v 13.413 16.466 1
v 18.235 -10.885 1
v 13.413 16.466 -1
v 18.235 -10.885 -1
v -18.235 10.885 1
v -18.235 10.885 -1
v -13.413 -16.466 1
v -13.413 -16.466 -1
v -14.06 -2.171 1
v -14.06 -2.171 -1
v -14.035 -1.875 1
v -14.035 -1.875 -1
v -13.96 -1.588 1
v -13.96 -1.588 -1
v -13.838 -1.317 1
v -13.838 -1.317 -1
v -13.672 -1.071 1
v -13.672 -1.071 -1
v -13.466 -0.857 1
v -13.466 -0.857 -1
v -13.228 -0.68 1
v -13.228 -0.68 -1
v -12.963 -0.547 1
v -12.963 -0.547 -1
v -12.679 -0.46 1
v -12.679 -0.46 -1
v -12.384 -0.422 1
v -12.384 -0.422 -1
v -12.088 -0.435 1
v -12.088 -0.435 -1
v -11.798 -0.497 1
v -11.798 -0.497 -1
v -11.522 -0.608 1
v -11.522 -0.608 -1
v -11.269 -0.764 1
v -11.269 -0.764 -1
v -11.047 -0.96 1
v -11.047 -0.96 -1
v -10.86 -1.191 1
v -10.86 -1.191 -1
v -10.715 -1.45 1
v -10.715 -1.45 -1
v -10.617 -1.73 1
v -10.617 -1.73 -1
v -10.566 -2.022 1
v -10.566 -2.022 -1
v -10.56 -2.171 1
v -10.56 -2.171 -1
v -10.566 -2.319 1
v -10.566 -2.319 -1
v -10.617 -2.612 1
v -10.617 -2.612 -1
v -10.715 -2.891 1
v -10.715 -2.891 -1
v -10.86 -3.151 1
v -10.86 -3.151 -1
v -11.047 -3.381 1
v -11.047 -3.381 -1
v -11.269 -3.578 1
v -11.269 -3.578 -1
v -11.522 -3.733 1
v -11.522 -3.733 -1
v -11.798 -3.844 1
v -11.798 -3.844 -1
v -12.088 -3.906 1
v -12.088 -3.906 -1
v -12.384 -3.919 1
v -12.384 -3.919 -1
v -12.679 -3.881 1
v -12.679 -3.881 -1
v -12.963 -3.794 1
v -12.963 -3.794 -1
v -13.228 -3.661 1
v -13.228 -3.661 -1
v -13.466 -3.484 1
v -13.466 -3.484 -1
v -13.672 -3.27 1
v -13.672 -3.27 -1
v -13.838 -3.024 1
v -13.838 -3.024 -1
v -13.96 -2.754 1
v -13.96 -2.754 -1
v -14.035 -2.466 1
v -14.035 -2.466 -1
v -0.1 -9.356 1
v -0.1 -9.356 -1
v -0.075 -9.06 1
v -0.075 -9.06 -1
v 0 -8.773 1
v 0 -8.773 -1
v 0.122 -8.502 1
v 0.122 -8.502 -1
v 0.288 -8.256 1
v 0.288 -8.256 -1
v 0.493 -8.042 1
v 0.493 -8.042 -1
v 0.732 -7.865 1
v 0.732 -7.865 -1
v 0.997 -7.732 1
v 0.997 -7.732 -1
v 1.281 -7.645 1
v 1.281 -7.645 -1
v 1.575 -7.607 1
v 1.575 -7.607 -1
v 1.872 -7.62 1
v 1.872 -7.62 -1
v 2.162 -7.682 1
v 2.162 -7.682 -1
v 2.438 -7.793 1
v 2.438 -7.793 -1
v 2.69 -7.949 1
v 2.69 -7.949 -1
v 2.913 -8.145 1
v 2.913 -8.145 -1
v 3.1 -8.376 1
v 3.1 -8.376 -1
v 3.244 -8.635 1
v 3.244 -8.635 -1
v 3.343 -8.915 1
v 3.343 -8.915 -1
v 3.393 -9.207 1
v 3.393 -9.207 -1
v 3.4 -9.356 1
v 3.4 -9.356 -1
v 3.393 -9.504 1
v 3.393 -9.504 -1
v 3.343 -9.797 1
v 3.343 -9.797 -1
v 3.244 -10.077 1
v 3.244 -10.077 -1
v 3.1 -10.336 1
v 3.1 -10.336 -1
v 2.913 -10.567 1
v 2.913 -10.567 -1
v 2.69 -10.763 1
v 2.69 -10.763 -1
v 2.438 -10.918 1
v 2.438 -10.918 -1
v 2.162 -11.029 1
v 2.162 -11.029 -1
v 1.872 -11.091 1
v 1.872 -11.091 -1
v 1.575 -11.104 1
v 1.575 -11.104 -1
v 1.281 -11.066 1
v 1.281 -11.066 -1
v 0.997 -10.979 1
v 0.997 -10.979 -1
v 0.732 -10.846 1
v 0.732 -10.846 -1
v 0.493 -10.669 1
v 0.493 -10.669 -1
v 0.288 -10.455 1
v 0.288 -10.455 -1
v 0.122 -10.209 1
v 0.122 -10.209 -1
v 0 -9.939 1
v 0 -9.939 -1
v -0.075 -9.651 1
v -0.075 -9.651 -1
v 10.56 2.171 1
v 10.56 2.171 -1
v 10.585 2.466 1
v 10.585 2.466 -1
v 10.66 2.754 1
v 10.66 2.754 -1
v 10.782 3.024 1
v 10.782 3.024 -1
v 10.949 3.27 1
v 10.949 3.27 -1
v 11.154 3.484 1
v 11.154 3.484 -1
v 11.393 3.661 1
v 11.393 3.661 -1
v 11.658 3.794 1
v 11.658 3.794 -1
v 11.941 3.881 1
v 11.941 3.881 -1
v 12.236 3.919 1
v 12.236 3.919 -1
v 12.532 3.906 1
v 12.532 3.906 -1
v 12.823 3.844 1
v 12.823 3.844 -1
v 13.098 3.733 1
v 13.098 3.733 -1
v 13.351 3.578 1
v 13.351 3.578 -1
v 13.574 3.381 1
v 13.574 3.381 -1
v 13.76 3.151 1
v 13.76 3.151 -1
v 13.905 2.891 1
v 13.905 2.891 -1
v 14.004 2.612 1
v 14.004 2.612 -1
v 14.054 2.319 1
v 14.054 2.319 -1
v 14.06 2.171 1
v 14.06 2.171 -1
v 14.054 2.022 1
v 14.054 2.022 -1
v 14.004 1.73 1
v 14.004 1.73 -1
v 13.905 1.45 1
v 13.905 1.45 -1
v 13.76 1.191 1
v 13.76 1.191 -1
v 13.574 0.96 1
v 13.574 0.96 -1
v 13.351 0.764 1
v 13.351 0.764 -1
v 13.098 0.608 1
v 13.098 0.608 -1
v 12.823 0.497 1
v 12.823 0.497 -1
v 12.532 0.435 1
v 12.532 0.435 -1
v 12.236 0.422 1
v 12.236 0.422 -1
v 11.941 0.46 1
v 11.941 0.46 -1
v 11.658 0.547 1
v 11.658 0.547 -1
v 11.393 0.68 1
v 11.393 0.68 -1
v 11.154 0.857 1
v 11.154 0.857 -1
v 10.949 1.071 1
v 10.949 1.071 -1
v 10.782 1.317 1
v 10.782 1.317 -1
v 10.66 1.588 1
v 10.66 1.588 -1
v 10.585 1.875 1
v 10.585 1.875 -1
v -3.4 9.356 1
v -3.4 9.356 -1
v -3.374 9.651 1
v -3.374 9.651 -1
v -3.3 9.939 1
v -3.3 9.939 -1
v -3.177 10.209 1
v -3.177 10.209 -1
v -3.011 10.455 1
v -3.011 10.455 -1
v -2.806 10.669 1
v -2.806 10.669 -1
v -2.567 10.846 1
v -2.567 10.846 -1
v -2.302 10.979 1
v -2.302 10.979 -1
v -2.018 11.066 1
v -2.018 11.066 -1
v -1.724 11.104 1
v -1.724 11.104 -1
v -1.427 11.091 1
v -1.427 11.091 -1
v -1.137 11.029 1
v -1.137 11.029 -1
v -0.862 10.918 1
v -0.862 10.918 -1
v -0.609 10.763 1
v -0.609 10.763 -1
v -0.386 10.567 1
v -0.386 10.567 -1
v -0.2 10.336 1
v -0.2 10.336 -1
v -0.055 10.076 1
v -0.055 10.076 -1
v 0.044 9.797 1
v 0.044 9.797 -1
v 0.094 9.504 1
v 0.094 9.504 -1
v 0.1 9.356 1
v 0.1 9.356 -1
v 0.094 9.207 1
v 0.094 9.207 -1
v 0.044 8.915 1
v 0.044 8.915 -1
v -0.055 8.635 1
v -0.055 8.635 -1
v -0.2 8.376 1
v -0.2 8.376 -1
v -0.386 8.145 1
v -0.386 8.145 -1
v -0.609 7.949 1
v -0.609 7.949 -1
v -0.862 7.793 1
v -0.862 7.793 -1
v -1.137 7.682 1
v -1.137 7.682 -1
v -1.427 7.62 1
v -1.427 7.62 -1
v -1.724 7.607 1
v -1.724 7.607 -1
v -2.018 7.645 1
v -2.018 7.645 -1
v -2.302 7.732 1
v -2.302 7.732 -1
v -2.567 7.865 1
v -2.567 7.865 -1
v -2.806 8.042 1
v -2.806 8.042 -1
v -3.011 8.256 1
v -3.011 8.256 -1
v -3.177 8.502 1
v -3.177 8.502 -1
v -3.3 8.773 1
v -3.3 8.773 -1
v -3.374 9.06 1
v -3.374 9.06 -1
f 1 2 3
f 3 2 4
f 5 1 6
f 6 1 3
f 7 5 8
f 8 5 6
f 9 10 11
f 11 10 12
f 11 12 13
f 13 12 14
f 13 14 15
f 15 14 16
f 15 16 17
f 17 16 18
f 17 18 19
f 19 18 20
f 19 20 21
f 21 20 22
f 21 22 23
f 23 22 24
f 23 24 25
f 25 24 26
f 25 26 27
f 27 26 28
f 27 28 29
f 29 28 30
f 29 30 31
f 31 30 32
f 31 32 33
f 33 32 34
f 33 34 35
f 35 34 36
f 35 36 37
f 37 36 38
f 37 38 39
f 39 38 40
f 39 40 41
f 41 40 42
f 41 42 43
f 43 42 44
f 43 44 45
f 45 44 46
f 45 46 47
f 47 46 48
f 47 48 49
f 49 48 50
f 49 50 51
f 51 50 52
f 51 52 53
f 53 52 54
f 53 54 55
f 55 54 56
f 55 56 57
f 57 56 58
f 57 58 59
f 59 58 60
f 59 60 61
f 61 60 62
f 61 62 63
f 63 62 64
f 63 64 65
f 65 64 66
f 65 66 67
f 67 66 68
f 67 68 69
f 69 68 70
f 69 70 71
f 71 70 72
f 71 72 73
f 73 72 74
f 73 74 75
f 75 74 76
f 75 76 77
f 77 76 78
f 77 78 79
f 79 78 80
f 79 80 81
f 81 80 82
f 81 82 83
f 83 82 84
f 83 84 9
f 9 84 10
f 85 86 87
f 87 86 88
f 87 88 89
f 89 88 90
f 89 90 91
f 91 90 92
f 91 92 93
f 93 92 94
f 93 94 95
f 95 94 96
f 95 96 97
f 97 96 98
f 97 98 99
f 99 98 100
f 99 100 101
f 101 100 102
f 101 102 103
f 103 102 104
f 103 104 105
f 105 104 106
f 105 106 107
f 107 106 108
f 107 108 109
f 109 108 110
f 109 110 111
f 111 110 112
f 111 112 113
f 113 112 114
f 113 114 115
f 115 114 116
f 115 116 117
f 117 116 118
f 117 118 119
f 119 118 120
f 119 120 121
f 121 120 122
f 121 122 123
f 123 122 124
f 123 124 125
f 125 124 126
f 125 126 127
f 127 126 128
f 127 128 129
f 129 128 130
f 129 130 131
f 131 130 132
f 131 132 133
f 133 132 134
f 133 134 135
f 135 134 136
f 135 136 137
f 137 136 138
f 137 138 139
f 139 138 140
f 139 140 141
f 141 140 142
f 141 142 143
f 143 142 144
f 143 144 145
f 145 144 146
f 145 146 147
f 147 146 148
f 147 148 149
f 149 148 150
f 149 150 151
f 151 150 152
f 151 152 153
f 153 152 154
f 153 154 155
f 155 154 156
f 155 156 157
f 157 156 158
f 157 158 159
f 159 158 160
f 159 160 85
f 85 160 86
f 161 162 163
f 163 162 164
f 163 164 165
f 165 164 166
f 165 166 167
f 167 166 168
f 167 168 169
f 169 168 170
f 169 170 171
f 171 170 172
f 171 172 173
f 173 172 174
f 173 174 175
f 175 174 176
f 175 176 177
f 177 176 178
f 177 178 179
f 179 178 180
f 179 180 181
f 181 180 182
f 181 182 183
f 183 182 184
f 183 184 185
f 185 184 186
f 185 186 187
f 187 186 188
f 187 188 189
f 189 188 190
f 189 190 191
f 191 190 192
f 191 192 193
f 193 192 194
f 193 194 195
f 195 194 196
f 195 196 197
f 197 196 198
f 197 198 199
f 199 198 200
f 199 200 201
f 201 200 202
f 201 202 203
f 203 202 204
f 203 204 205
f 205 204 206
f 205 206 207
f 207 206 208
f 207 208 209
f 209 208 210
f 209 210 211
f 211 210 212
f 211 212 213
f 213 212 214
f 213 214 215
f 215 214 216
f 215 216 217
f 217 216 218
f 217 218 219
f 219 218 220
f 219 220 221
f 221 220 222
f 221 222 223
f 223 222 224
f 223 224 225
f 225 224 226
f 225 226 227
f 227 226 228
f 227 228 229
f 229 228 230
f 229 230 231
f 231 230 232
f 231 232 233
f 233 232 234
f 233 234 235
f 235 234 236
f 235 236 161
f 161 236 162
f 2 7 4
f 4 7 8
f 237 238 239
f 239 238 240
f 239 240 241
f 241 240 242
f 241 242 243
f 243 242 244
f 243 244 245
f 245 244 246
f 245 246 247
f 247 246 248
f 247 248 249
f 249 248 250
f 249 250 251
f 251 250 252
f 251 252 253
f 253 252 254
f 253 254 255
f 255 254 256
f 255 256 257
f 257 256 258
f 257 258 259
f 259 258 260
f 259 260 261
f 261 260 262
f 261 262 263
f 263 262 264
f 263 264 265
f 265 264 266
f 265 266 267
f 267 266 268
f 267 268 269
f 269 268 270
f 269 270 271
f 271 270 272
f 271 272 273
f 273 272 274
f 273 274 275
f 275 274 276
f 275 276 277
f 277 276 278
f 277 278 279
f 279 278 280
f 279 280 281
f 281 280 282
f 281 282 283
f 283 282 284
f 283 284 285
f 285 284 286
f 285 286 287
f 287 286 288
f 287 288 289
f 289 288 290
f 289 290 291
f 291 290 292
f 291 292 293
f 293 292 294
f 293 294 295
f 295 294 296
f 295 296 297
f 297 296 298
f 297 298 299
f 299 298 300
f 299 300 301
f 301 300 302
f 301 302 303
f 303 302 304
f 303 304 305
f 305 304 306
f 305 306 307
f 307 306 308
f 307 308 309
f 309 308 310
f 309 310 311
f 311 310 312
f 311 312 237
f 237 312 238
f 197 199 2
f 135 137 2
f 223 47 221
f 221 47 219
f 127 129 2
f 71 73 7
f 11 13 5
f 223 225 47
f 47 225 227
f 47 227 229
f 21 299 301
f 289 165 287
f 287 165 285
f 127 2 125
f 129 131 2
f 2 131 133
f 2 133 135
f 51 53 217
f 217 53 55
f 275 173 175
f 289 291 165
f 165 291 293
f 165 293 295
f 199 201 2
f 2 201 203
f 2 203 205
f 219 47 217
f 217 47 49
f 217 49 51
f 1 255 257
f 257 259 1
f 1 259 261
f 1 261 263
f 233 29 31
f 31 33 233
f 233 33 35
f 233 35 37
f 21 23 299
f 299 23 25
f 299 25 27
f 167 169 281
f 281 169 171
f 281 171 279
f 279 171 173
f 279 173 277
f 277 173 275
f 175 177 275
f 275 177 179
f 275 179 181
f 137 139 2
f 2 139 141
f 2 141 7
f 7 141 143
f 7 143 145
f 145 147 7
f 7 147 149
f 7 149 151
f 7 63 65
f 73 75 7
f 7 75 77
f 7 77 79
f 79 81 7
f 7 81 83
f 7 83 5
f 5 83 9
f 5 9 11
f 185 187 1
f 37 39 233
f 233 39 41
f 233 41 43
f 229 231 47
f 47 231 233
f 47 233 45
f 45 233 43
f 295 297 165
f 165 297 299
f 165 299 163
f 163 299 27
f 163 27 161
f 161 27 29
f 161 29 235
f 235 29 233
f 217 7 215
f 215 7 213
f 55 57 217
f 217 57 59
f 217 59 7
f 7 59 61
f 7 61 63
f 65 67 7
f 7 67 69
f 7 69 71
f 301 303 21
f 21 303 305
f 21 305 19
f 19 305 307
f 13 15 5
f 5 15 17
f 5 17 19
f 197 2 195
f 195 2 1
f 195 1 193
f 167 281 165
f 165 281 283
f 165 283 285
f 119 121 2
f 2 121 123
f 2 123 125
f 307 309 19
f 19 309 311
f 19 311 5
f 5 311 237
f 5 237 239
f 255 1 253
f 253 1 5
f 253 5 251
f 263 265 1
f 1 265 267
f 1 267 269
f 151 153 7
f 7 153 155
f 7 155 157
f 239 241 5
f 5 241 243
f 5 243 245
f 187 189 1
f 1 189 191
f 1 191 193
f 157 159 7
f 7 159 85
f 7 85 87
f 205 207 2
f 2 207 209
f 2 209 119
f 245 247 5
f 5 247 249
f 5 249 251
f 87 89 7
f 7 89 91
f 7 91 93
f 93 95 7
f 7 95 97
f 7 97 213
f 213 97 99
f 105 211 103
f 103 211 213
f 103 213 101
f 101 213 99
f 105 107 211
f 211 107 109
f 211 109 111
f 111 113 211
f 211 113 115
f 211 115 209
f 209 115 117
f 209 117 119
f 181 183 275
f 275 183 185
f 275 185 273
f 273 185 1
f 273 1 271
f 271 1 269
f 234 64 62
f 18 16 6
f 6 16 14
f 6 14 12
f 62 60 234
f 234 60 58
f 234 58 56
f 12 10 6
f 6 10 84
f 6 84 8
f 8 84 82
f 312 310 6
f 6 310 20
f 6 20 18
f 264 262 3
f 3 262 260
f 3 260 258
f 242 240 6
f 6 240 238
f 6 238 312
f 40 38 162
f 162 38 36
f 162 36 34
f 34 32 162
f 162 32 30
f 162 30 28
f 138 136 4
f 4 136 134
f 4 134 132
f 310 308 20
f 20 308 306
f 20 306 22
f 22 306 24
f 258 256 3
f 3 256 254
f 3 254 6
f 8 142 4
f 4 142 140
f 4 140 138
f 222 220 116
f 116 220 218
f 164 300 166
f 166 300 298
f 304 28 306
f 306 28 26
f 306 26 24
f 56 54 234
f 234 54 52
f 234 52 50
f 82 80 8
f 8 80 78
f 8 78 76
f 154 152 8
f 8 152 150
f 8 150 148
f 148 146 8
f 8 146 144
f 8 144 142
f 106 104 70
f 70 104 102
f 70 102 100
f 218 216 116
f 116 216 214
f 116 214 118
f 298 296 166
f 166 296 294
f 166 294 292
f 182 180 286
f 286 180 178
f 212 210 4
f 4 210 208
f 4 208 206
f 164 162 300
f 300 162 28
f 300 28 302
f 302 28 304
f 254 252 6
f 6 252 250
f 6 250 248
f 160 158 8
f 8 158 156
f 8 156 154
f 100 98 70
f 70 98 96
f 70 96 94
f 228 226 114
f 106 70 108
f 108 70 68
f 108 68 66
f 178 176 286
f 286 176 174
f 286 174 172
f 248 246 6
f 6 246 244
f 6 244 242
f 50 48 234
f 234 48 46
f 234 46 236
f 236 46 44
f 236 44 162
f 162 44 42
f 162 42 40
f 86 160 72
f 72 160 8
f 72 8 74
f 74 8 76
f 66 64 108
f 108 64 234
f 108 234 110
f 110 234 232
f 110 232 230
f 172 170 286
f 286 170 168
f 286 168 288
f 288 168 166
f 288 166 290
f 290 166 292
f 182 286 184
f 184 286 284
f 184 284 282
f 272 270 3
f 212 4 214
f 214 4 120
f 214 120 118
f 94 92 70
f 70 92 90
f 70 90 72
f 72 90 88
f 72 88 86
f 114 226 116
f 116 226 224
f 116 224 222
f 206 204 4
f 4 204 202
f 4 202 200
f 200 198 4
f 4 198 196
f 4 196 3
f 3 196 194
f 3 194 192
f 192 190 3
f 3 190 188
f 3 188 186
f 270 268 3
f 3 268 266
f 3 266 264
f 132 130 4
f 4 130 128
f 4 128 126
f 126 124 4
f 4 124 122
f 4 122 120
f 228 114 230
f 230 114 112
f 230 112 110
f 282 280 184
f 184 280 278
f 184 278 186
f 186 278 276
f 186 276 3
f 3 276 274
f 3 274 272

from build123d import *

# Parameters (mm, degrees)
SKETCH1_W           = 32.13640153
SKETCH1_H           = 27.772655408
SKETCH1_R           = 3
SKETCH1_R_2         = 1.75
BOSS_EXTRUDE1_DEPTH = 1


with BuildPart() as part:
    # Sketch1 → Boss-Extrude1 (new, symmetric)
    # profile 1 of 5: a face of its own
    with BuildSketch(Plane(origin=(0, 0, 0), x_dir=(-0.9848077530122068, -0.17364817766693766, 0), z_dir=(0, 0, 1))):
        Rectangle(SKETCH1_W, SKETCH1_H)
        with Locations((0, -9.5)):
            Circle(SKETCH1_R, mode=Mode.SUBTRACT)
        with Locations((12.5, 0)):
            Circle(SKETCH1_R, mode=Mode.SUBTRACT)
        with Locations((0, 9.5)):
            Circle(SKETCH1_R, mode=Mode.SUBTRACT)
        with Locations((-12.5, 0)):
            Circle(SKETCH1_R, mode=Mode.SUBTRACT)
    # profile 2 of 5: a face of its own
    with BuildSketch(Plane(origin=(0, 0, 0), x_dir=(-0.9848077530122068, -0.17364817766693766, 0), z_dir=(0, 0, 1))):
        with Locations((-12.5, 0)):
            Circle(SKETCH1_R)
        with Locations(Location((-12.5, 0, 0), (0, 0, 170))):
            Circle(SKETCH1_R_2, mode=Mode.SUBTRACT)
    # profile 3 of 5: a face of its own
    with BuildSketch(Plane(origin=(0, 0, 0), x_dir=(-0.9848077530122068, -0.17364817766693766, 0), z_dir=(0, 0, 1))):
        with Locations((0, -9.5)):
            Circle(SKETCH1_R)
        with Locations(Location((0, -9.5, 0), (0, 0, 170))):
            Circle(SKETCH1_R_2, mode=Mode.SUBTRACT)
    # profile 4 of 5: a face of its own
    with BuildSketch(Plane(origin=(0, 0, 0), x_dir=(-0.9848077530122068, -0.17364817766693766, 0), z_dir=(0, 0, 1))):
        with Locations((0, 9.5)):
            Circle(SKETCH1_R)
        with Locations(Location((0, 9.5, 0), (0, 0, 170))):
            Circle(SKETCH1_R_2, mode=Mode.SUBTRACT)
    # profile 5 of 5: a face of its own
    with BuildSketch(Plane(origin=(0, 0, 0), x_dir=(-0.9848077530122068, -0.17364817766693766, 0), z_dir=(0, 0, 1))):
        with Locations((12.5, 0)):
            Circle(SKETCH1_R)
        with Locations(Location((12.5, 0, 0), (0, 0, 170))):
            Circle(SKETCH1_R_2, mode=Mode.SUBTRACT)
    extrude(amount=BOSS_EXTRUDE1_DEPTH, both=True)


solid = part.part
